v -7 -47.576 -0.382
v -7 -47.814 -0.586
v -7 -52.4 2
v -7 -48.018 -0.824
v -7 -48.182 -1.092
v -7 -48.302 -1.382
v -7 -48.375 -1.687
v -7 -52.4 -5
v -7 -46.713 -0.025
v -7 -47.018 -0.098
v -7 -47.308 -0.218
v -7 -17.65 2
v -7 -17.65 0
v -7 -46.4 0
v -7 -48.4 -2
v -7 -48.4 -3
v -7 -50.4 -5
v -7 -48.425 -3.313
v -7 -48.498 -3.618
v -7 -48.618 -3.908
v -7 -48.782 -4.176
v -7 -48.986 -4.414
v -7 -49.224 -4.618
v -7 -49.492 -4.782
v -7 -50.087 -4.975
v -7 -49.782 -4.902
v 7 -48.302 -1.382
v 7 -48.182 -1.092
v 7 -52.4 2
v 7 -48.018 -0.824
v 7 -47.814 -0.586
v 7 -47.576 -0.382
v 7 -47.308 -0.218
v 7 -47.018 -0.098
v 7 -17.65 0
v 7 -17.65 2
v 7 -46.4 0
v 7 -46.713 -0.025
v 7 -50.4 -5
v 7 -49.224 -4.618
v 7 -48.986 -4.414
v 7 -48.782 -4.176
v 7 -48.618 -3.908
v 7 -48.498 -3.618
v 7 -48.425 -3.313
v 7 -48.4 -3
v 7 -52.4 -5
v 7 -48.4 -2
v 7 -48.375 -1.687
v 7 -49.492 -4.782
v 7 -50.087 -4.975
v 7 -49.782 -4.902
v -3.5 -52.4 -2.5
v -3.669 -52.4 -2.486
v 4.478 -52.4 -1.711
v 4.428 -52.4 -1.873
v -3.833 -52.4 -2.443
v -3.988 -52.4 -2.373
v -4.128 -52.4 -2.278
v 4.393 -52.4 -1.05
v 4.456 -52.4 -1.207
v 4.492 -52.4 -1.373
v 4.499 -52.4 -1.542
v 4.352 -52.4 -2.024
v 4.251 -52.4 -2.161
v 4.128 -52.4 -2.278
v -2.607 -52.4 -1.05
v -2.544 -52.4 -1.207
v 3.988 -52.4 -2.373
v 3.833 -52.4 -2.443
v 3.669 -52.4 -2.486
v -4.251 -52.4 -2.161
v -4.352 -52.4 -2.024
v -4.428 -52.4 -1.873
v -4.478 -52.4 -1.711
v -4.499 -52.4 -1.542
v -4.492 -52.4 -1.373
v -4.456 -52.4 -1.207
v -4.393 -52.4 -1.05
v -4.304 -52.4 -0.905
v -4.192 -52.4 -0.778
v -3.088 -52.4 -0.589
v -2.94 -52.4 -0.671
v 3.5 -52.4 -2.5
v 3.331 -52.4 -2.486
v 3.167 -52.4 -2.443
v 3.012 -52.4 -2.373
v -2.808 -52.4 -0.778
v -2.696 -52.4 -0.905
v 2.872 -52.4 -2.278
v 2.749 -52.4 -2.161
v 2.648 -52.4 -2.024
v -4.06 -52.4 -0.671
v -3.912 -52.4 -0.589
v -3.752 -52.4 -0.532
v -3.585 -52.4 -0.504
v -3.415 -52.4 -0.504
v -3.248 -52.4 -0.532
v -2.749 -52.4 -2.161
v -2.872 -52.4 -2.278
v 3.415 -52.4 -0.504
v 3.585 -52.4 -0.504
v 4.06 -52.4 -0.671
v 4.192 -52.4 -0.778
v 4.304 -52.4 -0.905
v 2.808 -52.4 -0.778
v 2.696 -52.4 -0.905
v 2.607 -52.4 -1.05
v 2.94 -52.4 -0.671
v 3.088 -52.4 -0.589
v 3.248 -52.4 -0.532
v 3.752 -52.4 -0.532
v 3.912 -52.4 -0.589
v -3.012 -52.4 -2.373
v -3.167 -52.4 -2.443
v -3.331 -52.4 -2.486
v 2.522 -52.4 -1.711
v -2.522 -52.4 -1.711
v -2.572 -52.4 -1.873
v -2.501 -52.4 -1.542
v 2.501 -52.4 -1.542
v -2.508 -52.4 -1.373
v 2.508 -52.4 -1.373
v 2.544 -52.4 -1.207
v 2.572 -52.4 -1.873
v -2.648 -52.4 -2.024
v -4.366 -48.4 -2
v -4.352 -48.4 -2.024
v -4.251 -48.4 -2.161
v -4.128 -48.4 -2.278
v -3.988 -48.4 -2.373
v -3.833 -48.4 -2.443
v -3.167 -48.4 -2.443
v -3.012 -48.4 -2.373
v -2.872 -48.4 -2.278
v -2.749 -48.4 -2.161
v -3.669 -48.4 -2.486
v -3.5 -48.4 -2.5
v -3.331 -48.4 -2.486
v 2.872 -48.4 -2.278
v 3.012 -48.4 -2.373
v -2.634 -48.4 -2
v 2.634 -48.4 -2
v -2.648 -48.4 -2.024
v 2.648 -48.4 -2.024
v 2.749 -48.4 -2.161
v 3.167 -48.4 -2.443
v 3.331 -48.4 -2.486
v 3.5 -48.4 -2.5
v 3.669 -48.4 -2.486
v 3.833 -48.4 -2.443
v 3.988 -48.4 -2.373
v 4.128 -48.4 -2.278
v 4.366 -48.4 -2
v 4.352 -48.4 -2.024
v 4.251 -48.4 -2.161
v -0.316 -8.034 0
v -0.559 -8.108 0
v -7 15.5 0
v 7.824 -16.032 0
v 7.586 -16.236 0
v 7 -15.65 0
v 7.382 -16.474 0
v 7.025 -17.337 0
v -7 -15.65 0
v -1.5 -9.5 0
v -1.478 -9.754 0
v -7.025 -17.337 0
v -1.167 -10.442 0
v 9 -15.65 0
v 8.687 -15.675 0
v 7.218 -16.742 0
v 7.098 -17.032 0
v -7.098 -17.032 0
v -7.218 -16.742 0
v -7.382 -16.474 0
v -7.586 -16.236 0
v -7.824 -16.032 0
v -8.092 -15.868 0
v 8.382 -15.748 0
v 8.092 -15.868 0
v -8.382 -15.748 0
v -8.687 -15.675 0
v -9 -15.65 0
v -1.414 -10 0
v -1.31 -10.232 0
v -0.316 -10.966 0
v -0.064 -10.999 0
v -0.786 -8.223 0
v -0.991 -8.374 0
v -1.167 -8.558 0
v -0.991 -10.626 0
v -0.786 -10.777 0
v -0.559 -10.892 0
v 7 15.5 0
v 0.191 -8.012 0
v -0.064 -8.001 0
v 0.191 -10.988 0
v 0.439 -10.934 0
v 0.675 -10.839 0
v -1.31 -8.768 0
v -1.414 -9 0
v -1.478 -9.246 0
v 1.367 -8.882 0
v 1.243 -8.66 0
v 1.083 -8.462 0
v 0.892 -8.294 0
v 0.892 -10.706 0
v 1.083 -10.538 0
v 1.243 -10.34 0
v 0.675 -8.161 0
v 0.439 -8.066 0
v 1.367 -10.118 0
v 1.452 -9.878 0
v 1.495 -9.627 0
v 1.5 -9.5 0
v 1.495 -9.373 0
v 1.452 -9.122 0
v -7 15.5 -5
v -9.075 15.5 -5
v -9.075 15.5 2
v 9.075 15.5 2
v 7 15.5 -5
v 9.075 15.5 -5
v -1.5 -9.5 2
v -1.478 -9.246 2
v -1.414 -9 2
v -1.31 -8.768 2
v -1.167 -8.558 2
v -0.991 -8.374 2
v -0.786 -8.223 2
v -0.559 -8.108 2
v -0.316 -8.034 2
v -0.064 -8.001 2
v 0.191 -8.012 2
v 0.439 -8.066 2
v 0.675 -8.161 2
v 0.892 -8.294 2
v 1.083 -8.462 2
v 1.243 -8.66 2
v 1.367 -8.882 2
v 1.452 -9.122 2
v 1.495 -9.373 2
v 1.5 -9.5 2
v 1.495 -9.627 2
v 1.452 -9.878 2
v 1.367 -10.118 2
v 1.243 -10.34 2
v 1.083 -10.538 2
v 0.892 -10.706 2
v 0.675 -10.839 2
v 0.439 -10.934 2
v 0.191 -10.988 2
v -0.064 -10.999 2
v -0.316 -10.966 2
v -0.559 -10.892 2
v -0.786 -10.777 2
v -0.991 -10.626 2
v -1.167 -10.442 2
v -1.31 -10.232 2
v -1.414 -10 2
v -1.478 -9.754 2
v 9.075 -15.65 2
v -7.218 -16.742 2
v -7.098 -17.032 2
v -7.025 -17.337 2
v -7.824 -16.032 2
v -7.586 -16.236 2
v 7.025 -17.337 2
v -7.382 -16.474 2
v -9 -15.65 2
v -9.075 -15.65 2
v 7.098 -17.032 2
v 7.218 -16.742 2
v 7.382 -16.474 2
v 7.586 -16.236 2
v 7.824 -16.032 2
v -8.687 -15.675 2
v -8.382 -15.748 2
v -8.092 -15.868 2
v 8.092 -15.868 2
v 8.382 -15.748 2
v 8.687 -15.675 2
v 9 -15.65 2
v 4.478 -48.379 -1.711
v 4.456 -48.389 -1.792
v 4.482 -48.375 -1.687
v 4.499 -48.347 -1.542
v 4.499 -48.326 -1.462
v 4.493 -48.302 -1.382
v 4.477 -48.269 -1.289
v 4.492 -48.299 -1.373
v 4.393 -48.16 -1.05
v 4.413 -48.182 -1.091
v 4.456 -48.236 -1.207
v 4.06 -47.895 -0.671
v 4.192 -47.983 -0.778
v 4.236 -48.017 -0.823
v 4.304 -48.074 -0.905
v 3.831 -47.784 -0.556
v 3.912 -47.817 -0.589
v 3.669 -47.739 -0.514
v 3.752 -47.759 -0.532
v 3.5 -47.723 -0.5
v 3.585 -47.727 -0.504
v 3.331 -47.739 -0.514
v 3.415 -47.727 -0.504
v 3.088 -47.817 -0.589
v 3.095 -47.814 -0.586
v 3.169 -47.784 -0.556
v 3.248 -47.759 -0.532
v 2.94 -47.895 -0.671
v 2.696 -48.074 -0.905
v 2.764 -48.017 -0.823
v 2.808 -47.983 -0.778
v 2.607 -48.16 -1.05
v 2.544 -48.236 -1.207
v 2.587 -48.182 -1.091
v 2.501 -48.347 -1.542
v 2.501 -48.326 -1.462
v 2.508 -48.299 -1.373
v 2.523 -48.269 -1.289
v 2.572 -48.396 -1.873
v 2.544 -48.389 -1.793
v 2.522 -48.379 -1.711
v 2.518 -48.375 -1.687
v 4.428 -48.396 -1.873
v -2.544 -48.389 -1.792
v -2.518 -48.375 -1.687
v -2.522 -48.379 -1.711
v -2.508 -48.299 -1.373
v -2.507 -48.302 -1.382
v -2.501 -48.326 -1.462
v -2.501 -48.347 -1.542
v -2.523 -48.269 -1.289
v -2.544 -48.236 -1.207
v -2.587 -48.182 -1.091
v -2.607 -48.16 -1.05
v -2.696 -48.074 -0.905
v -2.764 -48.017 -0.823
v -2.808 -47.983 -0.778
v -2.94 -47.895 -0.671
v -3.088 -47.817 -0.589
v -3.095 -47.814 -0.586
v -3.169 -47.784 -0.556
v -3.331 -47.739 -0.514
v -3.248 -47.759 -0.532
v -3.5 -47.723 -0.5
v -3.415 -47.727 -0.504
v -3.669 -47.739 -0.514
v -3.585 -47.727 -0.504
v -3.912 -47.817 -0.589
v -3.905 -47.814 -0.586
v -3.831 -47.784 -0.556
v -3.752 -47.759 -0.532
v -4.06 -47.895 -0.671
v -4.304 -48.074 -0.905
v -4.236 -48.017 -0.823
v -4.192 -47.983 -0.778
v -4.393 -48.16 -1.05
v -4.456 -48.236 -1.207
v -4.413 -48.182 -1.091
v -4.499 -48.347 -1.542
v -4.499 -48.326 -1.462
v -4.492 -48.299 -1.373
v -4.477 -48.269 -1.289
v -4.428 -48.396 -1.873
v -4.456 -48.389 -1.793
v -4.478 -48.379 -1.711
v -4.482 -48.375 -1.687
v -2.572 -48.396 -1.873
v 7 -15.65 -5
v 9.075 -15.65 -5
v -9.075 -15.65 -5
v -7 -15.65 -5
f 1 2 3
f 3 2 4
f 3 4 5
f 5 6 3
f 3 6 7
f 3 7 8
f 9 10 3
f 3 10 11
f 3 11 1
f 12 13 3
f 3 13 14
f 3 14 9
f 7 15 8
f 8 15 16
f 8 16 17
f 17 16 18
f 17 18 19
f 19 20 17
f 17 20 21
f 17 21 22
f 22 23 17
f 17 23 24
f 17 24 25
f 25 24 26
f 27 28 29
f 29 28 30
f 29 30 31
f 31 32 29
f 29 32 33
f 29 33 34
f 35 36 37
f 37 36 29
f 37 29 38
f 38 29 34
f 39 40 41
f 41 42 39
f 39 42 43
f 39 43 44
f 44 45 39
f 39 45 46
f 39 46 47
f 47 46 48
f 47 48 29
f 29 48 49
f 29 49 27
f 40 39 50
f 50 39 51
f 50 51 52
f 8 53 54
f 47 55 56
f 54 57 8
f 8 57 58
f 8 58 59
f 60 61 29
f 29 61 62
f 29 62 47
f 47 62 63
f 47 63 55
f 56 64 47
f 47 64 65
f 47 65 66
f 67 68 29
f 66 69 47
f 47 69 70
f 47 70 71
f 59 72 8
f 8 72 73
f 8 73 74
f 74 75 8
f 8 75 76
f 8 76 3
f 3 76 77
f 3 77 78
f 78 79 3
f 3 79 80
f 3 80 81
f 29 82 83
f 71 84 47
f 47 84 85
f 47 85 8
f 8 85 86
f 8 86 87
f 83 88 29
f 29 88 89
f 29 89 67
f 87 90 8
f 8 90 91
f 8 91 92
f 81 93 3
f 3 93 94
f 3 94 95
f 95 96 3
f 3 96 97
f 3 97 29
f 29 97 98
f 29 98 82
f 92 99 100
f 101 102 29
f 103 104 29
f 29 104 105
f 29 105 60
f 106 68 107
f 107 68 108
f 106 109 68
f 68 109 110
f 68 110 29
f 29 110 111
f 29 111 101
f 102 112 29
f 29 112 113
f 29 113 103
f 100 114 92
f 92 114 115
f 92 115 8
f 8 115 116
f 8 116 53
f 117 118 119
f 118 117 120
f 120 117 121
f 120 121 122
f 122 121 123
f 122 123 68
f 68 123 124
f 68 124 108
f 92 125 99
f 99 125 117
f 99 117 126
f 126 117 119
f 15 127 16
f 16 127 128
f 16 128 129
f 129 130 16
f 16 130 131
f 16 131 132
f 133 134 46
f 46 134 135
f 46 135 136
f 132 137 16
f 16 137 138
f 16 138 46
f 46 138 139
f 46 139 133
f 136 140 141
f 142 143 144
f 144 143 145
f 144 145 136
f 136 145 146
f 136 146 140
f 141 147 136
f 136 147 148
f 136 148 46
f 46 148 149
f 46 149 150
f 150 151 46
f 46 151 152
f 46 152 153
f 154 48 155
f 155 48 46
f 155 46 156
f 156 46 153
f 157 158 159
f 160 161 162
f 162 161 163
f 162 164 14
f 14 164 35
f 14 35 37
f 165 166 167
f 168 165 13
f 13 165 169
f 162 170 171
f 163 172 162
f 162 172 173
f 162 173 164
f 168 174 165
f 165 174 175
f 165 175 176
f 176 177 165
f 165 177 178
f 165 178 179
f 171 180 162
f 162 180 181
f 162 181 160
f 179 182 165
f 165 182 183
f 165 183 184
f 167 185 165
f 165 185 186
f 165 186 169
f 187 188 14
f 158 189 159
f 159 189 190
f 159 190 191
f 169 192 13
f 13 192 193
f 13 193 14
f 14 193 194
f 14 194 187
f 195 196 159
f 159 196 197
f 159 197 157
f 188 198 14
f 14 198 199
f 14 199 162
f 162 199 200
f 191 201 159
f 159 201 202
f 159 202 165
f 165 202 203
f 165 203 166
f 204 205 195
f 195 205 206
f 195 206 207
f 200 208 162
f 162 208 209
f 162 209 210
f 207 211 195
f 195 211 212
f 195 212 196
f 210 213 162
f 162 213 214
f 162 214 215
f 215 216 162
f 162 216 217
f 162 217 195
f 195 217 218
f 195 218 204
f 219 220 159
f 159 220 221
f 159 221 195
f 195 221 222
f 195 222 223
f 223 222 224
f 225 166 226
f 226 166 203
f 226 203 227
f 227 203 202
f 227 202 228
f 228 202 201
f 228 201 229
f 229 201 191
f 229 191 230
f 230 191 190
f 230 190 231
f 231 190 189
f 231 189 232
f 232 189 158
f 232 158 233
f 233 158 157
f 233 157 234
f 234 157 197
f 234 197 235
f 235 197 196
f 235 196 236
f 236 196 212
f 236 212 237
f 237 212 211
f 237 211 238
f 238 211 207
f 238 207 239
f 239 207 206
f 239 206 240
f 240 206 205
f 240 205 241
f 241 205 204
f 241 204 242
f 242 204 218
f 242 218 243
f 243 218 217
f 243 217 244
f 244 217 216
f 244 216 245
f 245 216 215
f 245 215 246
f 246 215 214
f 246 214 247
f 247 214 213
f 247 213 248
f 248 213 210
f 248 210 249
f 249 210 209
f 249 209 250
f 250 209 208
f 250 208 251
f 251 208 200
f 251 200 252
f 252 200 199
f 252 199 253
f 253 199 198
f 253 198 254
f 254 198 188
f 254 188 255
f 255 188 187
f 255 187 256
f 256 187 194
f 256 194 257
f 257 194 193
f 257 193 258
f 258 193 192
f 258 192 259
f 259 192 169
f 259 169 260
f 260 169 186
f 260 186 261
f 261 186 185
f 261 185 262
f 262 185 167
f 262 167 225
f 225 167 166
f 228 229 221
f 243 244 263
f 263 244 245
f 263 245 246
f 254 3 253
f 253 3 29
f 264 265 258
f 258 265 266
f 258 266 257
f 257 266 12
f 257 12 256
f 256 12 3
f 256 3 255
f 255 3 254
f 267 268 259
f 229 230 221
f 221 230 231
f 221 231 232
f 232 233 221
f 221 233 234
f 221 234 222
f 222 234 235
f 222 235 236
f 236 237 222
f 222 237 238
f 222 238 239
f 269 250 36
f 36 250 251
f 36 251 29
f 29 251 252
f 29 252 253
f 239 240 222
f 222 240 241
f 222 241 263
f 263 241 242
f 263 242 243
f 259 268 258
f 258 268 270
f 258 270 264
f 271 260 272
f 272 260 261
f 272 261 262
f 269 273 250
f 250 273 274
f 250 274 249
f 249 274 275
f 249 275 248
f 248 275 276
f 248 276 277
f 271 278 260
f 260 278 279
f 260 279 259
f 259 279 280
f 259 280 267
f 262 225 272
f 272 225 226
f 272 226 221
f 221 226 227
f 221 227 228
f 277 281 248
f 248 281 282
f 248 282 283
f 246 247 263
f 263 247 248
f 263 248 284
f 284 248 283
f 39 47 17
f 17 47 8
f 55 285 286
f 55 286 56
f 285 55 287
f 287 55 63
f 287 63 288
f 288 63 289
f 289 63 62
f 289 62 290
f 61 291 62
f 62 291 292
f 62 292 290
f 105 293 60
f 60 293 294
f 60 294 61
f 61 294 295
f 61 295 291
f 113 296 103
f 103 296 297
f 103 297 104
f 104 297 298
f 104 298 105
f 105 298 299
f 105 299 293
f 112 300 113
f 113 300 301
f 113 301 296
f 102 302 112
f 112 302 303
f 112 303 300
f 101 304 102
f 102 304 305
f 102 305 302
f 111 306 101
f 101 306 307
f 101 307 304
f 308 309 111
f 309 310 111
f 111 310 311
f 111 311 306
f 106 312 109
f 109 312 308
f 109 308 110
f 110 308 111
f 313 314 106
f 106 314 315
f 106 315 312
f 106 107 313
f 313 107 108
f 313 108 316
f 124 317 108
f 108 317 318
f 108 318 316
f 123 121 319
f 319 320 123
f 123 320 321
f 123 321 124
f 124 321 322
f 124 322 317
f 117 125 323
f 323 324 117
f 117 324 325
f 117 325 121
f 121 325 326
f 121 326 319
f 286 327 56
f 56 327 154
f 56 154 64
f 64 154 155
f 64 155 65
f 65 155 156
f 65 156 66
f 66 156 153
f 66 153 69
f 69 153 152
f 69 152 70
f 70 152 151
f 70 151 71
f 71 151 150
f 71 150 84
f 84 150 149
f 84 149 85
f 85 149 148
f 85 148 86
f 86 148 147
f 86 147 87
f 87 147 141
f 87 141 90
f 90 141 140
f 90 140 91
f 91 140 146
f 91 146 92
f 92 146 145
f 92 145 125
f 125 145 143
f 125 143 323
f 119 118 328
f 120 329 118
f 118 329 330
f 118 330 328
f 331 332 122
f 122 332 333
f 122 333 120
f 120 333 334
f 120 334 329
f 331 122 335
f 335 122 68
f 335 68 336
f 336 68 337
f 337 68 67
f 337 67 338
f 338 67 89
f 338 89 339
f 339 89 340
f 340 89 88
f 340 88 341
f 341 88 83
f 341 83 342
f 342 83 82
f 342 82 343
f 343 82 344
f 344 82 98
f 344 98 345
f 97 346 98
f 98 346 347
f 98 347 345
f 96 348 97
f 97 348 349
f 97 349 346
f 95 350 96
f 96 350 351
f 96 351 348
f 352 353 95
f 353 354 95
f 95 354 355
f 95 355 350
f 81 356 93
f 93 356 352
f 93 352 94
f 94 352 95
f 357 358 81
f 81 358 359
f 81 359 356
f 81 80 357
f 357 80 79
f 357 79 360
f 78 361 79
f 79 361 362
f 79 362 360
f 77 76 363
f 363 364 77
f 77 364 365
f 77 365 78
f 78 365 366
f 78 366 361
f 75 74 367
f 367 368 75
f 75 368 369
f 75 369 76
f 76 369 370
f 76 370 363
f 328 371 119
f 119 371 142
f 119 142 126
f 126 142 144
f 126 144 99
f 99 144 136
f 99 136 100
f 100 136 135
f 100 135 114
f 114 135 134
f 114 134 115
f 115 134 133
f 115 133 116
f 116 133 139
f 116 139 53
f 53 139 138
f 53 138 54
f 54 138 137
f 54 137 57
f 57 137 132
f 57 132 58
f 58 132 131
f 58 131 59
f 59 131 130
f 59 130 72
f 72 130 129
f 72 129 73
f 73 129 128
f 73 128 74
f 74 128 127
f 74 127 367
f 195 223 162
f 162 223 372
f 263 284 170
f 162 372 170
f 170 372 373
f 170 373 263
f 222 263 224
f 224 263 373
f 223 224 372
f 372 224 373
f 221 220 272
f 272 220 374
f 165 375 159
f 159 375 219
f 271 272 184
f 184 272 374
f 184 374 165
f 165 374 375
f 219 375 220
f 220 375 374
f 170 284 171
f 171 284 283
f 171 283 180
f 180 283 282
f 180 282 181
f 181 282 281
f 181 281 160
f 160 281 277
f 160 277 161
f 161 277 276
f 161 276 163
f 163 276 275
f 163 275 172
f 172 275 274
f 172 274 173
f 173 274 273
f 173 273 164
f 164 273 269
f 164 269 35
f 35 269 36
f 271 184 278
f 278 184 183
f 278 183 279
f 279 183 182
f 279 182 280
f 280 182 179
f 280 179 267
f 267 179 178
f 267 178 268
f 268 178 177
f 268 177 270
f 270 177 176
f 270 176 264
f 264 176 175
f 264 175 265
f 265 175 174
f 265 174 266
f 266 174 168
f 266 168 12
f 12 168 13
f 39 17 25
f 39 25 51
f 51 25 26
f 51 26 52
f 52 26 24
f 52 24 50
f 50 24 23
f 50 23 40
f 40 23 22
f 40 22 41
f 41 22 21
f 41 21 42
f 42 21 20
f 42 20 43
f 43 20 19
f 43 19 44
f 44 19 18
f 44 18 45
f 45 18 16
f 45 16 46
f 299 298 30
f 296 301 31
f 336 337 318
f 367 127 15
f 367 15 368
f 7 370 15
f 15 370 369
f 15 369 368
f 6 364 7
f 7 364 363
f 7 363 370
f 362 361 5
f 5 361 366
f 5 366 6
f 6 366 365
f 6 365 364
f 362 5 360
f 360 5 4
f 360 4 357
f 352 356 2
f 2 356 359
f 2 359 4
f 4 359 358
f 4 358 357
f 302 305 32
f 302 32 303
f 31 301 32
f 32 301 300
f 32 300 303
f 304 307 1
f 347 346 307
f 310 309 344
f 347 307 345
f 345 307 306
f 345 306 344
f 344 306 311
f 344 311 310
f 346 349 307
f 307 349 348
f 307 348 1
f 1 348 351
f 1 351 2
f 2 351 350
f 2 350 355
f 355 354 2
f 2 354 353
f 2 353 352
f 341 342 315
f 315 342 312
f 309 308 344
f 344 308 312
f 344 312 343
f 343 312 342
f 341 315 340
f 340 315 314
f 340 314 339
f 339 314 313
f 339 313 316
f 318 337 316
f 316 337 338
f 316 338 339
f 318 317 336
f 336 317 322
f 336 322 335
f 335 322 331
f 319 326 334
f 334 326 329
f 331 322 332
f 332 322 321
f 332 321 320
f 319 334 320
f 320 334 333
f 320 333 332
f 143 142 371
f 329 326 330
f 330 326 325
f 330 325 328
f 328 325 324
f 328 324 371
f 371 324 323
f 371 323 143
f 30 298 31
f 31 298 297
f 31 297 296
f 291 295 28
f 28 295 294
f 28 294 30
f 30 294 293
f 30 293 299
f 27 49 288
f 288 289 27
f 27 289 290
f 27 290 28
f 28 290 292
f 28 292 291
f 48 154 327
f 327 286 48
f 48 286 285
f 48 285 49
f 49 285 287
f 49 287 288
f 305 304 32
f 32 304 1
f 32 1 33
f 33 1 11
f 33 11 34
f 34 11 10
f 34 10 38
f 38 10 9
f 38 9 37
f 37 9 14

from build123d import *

# Parameters (mm, degrees)
SKETCH2_W                       = 14
SKETCH2_H                       = 31
SKETCH2_R                       = 1.5
SKETCH2_H_2                     = 36.9
BOSS_EXTRUDE1_DEPTH             = 2
SKETCH3_W                       = 14
SKETCH3_H                       = 4
BOSS_EXTRUDE2_DEPTH             = 5
SKETCH4_R                       = 1
CUT_EXTRUDE1_DEPTH              = 4
SKETCH5_W                       = 0.075
SKETCH5_H                       = 31
SKETCH5_H_2                     = 0.15
BOSS_EXTRUDE3_DEPTH             = 5
BOSS_EXTRUDE3_DIRECTION_2_REACH = 55.101
FILLET1_R                       = 2


with BuildPart() as part:
    # Sketch2 → Boss-Extrude1 (new body)
    # profile 1 of 3: a face of its own
    with BuildSketch(Plane.XY):
        Rectangle(SKETCH2_W, SKETCH2_H)
        with BuildLine():
            ThreePointArc((1.7, -9.5), (0, -11.2), (-1.7, -9.5))
            ThreePointArc((-1.7, -9.5), (0, -7.8), (1.7, -9.5))
        make_face(mode=Mode.SUBTRACT)
    # profile 2 of 3: a face of its own
    with BuildSketch(Plane.XY):
        with BuildLine():
            ThreePointArc((-1.7, -9.5), (0, -7.8), (1.7, -9.5))
            ThreePointArc((1.7, -9.5), (0, -11.2), (-1.7, -9.5))
        make_face()
        with Locations((0, -9.5)):
            Circle(SKETCH2_R, mode=Mode.SUBTRACT)
    # profile 3 of 3: a face of its own
    with BuildSketch(Plane.XY):
        with Locations((0, -33.95)):
            Rectangle(SKETCH2_W, SKETCH2_H_2)
    extrude(amount=BOSS_EXTRUDE1_DEPTH)

    # Sketch3 → Boss-Extrude2 (add)
    with BuildSketch(Plane(origin=(0, 0, 0), x_dir=(-1, 0, 0), z_dir=(0, 0, -1))):
        with Locations((0, -50.4)):
            Rectangle(SKETCH3_W, SKETCH3_H)
    extrude(amount=BOSS_EXTRUDE2_DEPTH)

    # Sketch4 → Cut-Extrude1 (cut)
    with BuildSketch(Plane.XZ.offset(52.4)):
        with Locations(Location((-3.5, -1.5, 0), (0, 0, 270))):
            Circle(SKETCH4_R)
        with Locations(Location((3.5, -1.5, 0), (0, 0, 270))):
            Circle(SKETCH4_R)
    extrude(amount=-CUT_EXTRUDE1_DEPTH, mode=Mode.SUBTRACT)

    # Sketch5 → Boss-Extrude3 (add)
    with BuildSketch(Plane(origin=(0, 0, 0), x_dir=(-1, 0, 0), z_dir=(0, 0, -1))):
        Polygon((-7.075, -15.65), (-7.075, -15.5), (-7.075, 15.5), (-9.075, 15.5), (-9.075, -15.65), align=None)
        Polygon((7.075, 15.5), (7.075, -15.5), (7.075, -15.65), (9.075, -15.65), (9.075, 15.5), align=None)
        with Locations((7.0375, 0)):
            Rectangle(SKETCH5_W, SKETCH5_H)
        with Locations((-7.0375, 0)):
            Rectangle(SKETCH5_W, SKETCH5_H)
        with Locations((-7.0375, -15.575)):
            Rectangle(SKETCH5_W, SKETCH5_H_2)
        with Locations((7.0375, -15.575)):
            Rectangle(SKETCH5_W, SKETCH5_H_2)
    extrude(amount=BOSS_EXTRUDE3_DEPTH)

    # Boss-Extrude3 direction 2: up to this face of the body (flat: up to its plane)
    boss_extrude3_direction_2_end = Plane(part.part.faces().sort_by_distance((0, -18.517050043, 2))[0])
    # Sketch5 → Boss-Extrude3 direction 2 (add, up to the picked face)
    with BuildSketch(Plane(origin=(0, 0, 0), x_dir=(-1, 0, 0), z_dir=(0, 0, -1)), mode=Mode.PRIVATE) as boss_extrude3_direction_2_sk1:
        Polygon((-7.075, -15.65), (-7.075, -15.5), (-7.075, 15.5), (-9.075, 15.5), (-9.075, -15.65), align=None)
    boss_extrude3_direction_2_tool1 = split(extrude(boss_extrude3_direction_2_sk1.sketch, amount=-BOSS_EXTRUDE3_DIRECTION_2_REACH, mode=Mode.PRIVATE), bisect_by=boss_extrude3_direction_2_end, keep=Keep.BOTH, mode=Mode.PRIVATE)
    # Sketch5 → Boss-Extrude3 direction 2 (add, up to the picked face)
    with BuildSketch(Plane(origin=(0, 0, 0), x_dir=(-1, 0, 0), z_dir=(0, 0, -1)), mode=Mode.PRIVATE) as boss_extrude3_direction_2_sk2:
        Polygon((7.075, 15.5), (7.075, -15.5), (7.075, -15.65), (9.075, -15.65), (9.075, 15.5), align=None)
    boss_extrude3_direction_2_tool2 = split(extrude(boss_extrude3_direction_2_sk2.sketch, amount=-BOSS_EXTRUDE3_DIRECTION_2_REACH, mode=Mode.PRIVATE), bisect_by=boss_extrude3_direction_2_end, keep=Keep.BOTH, mode=Mode.PRIVATE)
    # Sketch5 → Boss-Extrude3 direction 2 (add, up to the picked face)
    with BuildSketch(Plane(origin=(0, 0, 0), x_dir=(-1, 0, 0), z_dir=(0, 0, -1)), mode=Mode.PRIVATE) as boss_extrude3_direction_2_sk3:
        with Locations((7.0375, 0)):
            Rectangle(SKETCH5_W, SKETCH5_H)
    boss_extrude3_direction_2_tool3 = split(extrude(boss_extrude3_direction_2_sk3.sketch, amount=-BOSS_EXTRUDE3_DIRECTION_2_REACH, mode=Mode.PRIVATE), bisect_by=boss_extrude3_direction_2_end, keep=Keep.BOTH, mode=Mode.PRIVATE)
    # Sketch5 → Boss-Extrude3 direction 2 (add, up to the picked face)
    with BuildSketch(Plane(origin=(0, 0, 0), x_dir=(-1, 0, 0), z_dir=(0, 0, -1)), mode=Mode.PRIVATE) as boss_extrude3_direction_2_sk4:
        with Locations((-7.0375, 0)):
            Rectangle(SKETCH5_W, SKETCH5_H)
    boss_extrude3_direction_2_tool4 = split(extrude(boss_extrude3_direction_2_sk4.sketch, amount=-BOSS_EXTRUDE3_DIRECTION_2_REACH, mode=Mode.PRIVATE), bisect_by=boss_extrude3_direction_2_end, keep=Keep.BOTH, mode=Mode.PRIVATE)
    # Sketch5 → Boss-Extrude3 direction 2 (add, up to the picked face)
    with BuildSketch(Plane(origin=(0, 0, 0), x_dir=(-1, 0, 0), z_dir=(0, 0, -1)), mode=Mode.PRIVATE) as boss_extrude3_direction_2_sk5:
        with Locations((-7.0375, -15.575)):
            Rectangle(SKETCH5_W, SKETCH5_H_2)
    boss_extrude3_direction_2_tool5 = split(extrude(boss_extrude3_direction_2_sk5.sketch, amount=-BOSS_EXTRUDE3_DIRECTION_2_REACH, mode=Mode.PRIVATE), bisect_by=boss_extrude3_direction_2_end, keep=Keep.BOTH, mode=Mode.PRIVATE)
    # Sketch5 → Boss-Extrude3 direction 2 (add, up to the picked face)
    with BuildSketch(Plane(origin=(0, 0, 0), x_dir=(-1, 0, 0), z_dir=(0, 0, -1)), mode=Mode.PRIVATE) as boss_extrude3_direction_2_sk6:
        with Locations((7.0375, -15.575)):
            Rectangle(SKETCH5_W, SKETCH5_H_2)
    boss_extrude3_direction_2_tool6 = split(extrude(boss_extrude3_direction_2_sk6.sketch, amount=-BOSS_EXTRUDE3_DIRECTION_2_REACH, mode=Mode.PRIVATE), bisect_by=boss_extrude3_direction_2_end, keep=Keep.BOTH, mode=Mode.PRIVATE)
    add(boss_extrude3_direction_2_tool1.solids().sort_by(Axis((8.075, -0.075, 0), (0, 0, 1)))[0])
    add(boss_extrude3_direction_2_tool2.solids().sort_by(Axis((-8.075, -0.075, 0), (0, 0, 1)))[0])
    add(boss_extrude3_direction_2_tool3.solids().sort_by(Axis((-7.0375, 0, 0), (0, 0, 1)))[0])
    add(boss_extrude3_direction_2_tool4.solids().sort_by(Axis((7.0375, 0, 0), (0, 0, 1)))[0])
    add(boss_extrude3_direction_2_tool5.solids().sort_by(Axis((7.0375, -15.575, 0), (0, 0, 1)))[0])
    add(boss_extrude3_direction_2_tool6.solids().sort_by(Axis((-7.0375, -15.575, 0), (0, 0, 1)))[0])

    # Fillet1
    # the kernel refuses this fillet: 2 mm, written as the material it adds along each edge
    with BuildSketch(Plane(origin=(7, -48.4, 0), x_dir=(0, 0, -1), z_dir=(-1, 0, 0))) as fillet1_piece_1_section:
        with BuildLine():
            CenterArc((FILLET1_R, -FILLET1_R), FILLET1_R, 90, 90)
            Line((0, -FILLET1_R), (0, 0))
            Line((0, 0), (FILLET1_R, 0))
        make_face()
    fillet1_piece_1 = extrude(amount=14, mode=Mode.PRIVATE)
    fillet1_piece_1 = fillet1_piece_1 - Plane(origin=(-3.5, -47.93211331, -1.5), x_dir=(0, 0, -1), z_dir=(0, -1, 0)) * Cylinder(1, 37, mode=Mode.PRIVATE)
    fillet1_piece_1 = fillet1_piece_1 - Plane(origin=(3.5, -47.93211331, -1.5), x_dir=(0, 0, -1), z_dir=(0, -1, 0)) * Cylinder(1, 37, mode=Mode.PRIVATE)
    add(fillet1_piece_1)
    with BuildSketch(Plane(origin=(7, -15.65, 0), x_dir=(0, -1, 0), z_dir=(0, 0, 1)), Plane(origin=(-7, -15.65, 0), x_dir=(-1, 0, 0), z_dir=(0, 0, 1))) as fillet1_piece_2:
        with BuildLine():
            CenterArc((FILLET1_R, FILLET1_R), FILLET1_R, 180, 90)
            Line((0, FILLET1_R), (0, 0))
            Line((0, 0), (FILLET1_R, 0))
        make_face()
    extrude(amount=2)
    # the kernel refuses this fillet: 2 mm, written as the material it takes off along each edge
    with BuildSketch(Plane(origin=(12, -48.4, -5), x_dir=(0, 0, 1), z_dir=(-1, 0, 0))) as fillet1_2_piece_1:
        with BuildLine():
            CenterArc((FILLET1_R, -FILLET1_R), FILLET1_R, 90, 90)
            Line((0, -FILLET1_R), (0, 0))
            Line((0, 0), (FILLET1_R, 0))
        make_face()
    extrude(amount=24, mode=Mode.SUBTRACT)


solid = part.part
